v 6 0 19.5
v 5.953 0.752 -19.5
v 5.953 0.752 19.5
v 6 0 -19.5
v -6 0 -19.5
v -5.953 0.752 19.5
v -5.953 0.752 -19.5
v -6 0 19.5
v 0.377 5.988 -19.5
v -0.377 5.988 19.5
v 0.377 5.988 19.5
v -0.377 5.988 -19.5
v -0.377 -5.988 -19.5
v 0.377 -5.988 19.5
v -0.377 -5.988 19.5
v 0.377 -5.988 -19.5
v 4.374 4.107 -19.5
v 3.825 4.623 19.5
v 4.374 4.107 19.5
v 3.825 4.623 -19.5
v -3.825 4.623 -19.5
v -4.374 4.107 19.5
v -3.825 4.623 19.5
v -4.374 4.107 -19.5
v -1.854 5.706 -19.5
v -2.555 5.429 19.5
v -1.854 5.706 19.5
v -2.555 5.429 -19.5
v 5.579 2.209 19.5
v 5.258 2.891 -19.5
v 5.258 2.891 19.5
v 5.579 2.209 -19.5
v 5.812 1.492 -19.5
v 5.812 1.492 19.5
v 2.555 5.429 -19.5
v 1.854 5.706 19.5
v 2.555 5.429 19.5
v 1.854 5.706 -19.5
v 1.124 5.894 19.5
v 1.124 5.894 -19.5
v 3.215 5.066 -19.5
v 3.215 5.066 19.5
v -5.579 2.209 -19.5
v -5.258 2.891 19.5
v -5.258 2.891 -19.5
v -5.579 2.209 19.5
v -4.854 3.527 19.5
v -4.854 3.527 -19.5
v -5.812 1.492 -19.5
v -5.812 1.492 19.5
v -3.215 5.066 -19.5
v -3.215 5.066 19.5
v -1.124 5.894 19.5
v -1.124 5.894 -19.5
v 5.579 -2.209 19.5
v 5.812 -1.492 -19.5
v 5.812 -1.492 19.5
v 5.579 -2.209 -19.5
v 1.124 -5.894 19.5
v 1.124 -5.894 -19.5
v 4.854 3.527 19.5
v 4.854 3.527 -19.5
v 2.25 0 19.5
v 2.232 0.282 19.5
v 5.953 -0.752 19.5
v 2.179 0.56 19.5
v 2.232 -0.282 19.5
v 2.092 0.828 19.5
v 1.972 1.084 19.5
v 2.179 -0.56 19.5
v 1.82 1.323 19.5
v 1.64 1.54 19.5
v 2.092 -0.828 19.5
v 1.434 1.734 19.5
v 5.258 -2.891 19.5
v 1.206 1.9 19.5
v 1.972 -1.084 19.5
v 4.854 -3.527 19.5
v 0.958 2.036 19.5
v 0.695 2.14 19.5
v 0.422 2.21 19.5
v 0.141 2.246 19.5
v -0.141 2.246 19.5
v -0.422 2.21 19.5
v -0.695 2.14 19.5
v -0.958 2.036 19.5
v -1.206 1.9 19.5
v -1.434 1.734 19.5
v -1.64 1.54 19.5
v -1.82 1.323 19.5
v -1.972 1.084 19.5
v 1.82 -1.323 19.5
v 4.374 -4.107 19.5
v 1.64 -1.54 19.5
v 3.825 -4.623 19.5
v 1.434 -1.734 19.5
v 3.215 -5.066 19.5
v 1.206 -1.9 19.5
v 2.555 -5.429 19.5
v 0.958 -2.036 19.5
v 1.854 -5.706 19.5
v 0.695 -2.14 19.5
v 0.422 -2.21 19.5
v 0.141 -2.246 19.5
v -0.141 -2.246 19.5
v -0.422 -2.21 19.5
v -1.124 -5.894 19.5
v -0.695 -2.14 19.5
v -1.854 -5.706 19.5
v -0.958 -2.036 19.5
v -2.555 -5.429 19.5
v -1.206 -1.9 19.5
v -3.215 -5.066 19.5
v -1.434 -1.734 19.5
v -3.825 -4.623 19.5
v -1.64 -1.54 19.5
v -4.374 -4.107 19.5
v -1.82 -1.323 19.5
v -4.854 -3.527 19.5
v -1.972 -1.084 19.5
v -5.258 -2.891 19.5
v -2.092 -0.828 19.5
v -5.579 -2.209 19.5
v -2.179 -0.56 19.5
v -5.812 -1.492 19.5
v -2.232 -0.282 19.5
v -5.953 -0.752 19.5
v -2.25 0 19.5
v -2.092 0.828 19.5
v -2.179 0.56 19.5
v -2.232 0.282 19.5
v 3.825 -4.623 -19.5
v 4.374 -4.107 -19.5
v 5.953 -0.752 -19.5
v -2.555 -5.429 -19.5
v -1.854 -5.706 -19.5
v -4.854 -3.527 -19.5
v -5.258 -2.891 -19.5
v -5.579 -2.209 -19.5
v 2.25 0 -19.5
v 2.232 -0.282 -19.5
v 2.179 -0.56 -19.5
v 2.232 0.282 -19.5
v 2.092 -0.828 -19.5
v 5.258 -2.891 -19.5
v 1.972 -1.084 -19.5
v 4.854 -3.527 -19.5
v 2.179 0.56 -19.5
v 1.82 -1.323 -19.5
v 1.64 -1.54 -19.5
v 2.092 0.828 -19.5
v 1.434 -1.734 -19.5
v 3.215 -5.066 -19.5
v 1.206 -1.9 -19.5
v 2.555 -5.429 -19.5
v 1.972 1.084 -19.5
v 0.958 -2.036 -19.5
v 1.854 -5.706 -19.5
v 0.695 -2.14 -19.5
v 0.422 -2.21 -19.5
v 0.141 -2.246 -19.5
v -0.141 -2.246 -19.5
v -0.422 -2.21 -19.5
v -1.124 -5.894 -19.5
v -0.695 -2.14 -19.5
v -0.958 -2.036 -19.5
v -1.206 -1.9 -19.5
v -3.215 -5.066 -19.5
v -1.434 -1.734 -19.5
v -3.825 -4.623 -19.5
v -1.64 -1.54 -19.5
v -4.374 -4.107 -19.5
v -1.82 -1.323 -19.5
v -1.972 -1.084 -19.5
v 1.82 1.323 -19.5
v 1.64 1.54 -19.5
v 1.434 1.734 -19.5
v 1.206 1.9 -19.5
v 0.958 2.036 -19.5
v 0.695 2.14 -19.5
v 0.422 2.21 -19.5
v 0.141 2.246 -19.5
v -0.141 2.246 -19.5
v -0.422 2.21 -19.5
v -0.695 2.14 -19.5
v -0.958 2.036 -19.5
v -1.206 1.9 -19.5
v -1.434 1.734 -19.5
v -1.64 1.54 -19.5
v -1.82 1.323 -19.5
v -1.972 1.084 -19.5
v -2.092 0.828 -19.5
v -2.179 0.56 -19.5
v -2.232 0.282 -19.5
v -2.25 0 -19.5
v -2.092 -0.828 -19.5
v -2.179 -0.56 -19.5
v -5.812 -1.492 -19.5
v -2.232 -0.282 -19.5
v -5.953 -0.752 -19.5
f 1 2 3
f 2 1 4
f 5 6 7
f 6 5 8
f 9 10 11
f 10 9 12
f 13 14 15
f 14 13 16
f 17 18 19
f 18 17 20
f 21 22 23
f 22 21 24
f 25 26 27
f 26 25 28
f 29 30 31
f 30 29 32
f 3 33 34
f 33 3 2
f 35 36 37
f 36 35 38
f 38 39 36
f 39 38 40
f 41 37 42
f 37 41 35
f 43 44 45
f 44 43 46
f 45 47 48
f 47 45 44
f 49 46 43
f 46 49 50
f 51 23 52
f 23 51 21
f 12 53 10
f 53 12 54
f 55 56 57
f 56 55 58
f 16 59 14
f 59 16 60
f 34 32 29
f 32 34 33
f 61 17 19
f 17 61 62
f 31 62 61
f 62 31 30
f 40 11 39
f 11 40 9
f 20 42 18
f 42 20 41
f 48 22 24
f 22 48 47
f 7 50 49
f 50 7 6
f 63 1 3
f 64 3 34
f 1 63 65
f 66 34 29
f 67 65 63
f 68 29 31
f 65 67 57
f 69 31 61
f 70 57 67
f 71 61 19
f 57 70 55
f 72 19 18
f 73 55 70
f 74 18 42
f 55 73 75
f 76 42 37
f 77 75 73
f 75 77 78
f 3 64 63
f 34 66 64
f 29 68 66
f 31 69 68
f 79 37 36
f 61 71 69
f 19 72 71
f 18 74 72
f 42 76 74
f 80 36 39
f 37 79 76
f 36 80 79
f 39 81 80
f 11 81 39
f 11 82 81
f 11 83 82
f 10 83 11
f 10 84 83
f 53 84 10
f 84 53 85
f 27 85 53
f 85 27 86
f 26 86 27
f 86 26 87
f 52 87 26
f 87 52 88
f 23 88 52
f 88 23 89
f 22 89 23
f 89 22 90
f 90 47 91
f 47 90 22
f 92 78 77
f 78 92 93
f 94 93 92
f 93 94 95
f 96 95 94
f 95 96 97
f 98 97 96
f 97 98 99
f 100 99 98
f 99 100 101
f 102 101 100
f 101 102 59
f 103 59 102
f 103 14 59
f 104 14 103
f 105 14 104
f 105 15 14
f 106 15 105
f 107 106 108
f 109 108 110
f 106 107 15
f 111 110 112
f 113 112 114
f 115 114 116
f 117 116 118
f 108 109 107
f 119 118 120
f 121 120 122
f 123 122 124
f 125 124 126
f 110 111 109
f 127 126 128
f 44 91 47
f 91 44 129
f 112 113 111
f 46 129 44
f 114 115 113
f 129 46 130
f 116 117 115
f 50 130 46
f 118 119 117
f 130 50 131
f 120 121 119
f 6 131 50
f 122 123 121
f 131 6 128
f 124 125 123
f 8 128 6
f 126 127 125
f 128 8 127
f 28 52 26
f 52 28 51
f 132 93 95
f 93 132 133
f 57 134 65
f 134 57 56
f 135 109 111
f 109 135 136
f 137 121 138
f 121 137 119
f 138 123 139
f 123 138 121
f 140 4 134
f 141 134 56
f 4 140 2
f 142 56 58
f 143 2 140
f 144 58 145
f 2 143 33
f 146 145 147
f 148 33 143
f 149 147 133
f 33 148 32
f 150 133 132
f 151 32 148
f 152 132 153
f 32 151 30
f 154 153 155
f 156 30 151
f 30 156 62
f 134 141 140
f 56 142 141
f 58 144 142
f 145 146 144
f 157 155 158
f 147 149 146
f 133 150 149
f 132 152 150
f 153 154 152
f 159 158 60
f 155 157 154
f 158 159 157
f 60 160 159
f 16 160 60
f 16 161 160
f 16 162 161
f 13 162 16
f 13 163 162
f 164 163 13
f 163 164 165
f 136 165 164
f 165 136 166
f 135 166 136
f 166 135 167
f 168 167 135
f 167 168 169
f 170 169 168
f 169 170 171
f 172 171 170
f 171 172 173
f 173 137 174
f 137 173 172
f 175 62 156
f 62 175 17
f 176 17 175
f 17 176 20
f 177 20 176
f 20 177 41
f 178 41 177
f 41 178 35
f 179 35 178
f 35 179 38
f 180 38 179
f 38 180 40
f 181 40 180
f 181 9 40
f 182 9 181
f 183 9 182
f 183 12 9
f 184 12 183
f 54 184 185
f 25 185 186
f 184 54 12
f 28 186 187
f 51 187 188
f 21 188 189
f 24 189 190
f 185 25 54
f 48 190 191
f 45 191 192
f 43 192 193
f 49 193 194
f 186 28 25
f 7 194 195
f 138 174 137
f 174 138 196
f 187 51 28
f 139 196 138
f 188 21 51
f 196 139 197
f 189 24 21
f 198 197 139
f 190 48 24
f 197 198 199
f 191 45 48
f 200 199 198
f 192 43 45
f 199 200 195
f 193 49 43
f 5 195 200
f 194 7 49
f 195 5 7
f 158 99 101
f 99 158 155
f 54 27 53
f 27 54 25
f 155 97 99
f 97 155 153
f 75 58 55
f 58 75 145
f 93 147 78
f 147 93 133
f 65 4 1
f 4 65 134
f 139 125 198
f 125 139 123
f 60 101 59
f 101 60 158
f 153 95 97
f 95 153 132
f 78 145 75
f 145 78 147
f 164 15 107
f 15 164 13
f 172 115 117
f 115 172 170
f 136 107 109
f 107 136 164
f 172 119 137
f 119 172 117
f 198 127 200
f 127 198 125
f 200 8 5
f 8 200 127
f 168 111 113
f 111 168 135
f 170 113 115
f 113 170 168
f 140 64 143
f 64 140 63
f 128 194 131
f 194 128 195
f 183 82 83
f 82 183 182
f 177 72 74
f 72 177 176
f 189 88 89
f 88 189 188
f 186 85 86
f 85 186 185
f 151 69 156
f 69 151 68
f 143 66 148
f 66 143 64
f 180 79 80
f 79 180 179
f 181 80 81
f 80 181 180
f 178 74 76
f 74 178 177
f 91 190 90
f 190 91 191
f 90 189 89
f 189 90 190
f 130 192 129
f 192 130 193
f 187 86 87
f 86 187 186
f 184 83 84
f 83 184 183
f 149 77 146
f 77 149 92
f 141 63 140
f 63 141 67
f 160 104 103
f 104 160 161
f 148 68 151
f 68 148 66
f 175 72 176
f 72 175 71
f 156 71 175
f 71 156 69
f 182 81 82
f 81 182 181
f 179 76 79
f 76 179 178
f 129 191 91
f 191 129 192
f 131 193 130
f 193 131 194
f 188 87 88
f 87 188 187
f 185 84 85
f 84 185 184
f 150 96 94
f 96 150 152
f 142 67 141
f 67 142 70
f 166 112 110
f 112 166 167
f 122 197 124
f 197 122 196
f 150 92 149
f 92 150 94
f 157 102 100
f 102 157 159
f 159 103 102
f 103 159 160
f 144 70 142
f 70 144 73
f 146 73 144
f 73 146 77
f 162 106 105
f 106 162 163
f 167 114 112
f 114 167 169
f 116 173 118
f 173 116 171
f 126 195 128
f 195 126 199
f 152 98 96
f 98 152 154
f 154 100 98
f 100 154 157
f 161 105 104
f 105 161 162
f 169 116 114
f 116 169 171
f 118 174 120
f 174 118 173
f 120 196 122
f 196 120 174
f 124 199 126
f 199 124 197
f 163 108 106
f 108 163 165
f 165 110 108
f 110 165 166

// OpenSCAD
$fn = 50;


difference() {
	union() {
		translate(v = [0, 0, -19.5000000000]) {
			cylinder(h = 39, r = 6.0000000000);
		}
	}
	union() {
		translate(v = [0, 0, -100.0000000000]) {
			cylinder(h = 200, r = 2.2500000000);
		}
	}
}
